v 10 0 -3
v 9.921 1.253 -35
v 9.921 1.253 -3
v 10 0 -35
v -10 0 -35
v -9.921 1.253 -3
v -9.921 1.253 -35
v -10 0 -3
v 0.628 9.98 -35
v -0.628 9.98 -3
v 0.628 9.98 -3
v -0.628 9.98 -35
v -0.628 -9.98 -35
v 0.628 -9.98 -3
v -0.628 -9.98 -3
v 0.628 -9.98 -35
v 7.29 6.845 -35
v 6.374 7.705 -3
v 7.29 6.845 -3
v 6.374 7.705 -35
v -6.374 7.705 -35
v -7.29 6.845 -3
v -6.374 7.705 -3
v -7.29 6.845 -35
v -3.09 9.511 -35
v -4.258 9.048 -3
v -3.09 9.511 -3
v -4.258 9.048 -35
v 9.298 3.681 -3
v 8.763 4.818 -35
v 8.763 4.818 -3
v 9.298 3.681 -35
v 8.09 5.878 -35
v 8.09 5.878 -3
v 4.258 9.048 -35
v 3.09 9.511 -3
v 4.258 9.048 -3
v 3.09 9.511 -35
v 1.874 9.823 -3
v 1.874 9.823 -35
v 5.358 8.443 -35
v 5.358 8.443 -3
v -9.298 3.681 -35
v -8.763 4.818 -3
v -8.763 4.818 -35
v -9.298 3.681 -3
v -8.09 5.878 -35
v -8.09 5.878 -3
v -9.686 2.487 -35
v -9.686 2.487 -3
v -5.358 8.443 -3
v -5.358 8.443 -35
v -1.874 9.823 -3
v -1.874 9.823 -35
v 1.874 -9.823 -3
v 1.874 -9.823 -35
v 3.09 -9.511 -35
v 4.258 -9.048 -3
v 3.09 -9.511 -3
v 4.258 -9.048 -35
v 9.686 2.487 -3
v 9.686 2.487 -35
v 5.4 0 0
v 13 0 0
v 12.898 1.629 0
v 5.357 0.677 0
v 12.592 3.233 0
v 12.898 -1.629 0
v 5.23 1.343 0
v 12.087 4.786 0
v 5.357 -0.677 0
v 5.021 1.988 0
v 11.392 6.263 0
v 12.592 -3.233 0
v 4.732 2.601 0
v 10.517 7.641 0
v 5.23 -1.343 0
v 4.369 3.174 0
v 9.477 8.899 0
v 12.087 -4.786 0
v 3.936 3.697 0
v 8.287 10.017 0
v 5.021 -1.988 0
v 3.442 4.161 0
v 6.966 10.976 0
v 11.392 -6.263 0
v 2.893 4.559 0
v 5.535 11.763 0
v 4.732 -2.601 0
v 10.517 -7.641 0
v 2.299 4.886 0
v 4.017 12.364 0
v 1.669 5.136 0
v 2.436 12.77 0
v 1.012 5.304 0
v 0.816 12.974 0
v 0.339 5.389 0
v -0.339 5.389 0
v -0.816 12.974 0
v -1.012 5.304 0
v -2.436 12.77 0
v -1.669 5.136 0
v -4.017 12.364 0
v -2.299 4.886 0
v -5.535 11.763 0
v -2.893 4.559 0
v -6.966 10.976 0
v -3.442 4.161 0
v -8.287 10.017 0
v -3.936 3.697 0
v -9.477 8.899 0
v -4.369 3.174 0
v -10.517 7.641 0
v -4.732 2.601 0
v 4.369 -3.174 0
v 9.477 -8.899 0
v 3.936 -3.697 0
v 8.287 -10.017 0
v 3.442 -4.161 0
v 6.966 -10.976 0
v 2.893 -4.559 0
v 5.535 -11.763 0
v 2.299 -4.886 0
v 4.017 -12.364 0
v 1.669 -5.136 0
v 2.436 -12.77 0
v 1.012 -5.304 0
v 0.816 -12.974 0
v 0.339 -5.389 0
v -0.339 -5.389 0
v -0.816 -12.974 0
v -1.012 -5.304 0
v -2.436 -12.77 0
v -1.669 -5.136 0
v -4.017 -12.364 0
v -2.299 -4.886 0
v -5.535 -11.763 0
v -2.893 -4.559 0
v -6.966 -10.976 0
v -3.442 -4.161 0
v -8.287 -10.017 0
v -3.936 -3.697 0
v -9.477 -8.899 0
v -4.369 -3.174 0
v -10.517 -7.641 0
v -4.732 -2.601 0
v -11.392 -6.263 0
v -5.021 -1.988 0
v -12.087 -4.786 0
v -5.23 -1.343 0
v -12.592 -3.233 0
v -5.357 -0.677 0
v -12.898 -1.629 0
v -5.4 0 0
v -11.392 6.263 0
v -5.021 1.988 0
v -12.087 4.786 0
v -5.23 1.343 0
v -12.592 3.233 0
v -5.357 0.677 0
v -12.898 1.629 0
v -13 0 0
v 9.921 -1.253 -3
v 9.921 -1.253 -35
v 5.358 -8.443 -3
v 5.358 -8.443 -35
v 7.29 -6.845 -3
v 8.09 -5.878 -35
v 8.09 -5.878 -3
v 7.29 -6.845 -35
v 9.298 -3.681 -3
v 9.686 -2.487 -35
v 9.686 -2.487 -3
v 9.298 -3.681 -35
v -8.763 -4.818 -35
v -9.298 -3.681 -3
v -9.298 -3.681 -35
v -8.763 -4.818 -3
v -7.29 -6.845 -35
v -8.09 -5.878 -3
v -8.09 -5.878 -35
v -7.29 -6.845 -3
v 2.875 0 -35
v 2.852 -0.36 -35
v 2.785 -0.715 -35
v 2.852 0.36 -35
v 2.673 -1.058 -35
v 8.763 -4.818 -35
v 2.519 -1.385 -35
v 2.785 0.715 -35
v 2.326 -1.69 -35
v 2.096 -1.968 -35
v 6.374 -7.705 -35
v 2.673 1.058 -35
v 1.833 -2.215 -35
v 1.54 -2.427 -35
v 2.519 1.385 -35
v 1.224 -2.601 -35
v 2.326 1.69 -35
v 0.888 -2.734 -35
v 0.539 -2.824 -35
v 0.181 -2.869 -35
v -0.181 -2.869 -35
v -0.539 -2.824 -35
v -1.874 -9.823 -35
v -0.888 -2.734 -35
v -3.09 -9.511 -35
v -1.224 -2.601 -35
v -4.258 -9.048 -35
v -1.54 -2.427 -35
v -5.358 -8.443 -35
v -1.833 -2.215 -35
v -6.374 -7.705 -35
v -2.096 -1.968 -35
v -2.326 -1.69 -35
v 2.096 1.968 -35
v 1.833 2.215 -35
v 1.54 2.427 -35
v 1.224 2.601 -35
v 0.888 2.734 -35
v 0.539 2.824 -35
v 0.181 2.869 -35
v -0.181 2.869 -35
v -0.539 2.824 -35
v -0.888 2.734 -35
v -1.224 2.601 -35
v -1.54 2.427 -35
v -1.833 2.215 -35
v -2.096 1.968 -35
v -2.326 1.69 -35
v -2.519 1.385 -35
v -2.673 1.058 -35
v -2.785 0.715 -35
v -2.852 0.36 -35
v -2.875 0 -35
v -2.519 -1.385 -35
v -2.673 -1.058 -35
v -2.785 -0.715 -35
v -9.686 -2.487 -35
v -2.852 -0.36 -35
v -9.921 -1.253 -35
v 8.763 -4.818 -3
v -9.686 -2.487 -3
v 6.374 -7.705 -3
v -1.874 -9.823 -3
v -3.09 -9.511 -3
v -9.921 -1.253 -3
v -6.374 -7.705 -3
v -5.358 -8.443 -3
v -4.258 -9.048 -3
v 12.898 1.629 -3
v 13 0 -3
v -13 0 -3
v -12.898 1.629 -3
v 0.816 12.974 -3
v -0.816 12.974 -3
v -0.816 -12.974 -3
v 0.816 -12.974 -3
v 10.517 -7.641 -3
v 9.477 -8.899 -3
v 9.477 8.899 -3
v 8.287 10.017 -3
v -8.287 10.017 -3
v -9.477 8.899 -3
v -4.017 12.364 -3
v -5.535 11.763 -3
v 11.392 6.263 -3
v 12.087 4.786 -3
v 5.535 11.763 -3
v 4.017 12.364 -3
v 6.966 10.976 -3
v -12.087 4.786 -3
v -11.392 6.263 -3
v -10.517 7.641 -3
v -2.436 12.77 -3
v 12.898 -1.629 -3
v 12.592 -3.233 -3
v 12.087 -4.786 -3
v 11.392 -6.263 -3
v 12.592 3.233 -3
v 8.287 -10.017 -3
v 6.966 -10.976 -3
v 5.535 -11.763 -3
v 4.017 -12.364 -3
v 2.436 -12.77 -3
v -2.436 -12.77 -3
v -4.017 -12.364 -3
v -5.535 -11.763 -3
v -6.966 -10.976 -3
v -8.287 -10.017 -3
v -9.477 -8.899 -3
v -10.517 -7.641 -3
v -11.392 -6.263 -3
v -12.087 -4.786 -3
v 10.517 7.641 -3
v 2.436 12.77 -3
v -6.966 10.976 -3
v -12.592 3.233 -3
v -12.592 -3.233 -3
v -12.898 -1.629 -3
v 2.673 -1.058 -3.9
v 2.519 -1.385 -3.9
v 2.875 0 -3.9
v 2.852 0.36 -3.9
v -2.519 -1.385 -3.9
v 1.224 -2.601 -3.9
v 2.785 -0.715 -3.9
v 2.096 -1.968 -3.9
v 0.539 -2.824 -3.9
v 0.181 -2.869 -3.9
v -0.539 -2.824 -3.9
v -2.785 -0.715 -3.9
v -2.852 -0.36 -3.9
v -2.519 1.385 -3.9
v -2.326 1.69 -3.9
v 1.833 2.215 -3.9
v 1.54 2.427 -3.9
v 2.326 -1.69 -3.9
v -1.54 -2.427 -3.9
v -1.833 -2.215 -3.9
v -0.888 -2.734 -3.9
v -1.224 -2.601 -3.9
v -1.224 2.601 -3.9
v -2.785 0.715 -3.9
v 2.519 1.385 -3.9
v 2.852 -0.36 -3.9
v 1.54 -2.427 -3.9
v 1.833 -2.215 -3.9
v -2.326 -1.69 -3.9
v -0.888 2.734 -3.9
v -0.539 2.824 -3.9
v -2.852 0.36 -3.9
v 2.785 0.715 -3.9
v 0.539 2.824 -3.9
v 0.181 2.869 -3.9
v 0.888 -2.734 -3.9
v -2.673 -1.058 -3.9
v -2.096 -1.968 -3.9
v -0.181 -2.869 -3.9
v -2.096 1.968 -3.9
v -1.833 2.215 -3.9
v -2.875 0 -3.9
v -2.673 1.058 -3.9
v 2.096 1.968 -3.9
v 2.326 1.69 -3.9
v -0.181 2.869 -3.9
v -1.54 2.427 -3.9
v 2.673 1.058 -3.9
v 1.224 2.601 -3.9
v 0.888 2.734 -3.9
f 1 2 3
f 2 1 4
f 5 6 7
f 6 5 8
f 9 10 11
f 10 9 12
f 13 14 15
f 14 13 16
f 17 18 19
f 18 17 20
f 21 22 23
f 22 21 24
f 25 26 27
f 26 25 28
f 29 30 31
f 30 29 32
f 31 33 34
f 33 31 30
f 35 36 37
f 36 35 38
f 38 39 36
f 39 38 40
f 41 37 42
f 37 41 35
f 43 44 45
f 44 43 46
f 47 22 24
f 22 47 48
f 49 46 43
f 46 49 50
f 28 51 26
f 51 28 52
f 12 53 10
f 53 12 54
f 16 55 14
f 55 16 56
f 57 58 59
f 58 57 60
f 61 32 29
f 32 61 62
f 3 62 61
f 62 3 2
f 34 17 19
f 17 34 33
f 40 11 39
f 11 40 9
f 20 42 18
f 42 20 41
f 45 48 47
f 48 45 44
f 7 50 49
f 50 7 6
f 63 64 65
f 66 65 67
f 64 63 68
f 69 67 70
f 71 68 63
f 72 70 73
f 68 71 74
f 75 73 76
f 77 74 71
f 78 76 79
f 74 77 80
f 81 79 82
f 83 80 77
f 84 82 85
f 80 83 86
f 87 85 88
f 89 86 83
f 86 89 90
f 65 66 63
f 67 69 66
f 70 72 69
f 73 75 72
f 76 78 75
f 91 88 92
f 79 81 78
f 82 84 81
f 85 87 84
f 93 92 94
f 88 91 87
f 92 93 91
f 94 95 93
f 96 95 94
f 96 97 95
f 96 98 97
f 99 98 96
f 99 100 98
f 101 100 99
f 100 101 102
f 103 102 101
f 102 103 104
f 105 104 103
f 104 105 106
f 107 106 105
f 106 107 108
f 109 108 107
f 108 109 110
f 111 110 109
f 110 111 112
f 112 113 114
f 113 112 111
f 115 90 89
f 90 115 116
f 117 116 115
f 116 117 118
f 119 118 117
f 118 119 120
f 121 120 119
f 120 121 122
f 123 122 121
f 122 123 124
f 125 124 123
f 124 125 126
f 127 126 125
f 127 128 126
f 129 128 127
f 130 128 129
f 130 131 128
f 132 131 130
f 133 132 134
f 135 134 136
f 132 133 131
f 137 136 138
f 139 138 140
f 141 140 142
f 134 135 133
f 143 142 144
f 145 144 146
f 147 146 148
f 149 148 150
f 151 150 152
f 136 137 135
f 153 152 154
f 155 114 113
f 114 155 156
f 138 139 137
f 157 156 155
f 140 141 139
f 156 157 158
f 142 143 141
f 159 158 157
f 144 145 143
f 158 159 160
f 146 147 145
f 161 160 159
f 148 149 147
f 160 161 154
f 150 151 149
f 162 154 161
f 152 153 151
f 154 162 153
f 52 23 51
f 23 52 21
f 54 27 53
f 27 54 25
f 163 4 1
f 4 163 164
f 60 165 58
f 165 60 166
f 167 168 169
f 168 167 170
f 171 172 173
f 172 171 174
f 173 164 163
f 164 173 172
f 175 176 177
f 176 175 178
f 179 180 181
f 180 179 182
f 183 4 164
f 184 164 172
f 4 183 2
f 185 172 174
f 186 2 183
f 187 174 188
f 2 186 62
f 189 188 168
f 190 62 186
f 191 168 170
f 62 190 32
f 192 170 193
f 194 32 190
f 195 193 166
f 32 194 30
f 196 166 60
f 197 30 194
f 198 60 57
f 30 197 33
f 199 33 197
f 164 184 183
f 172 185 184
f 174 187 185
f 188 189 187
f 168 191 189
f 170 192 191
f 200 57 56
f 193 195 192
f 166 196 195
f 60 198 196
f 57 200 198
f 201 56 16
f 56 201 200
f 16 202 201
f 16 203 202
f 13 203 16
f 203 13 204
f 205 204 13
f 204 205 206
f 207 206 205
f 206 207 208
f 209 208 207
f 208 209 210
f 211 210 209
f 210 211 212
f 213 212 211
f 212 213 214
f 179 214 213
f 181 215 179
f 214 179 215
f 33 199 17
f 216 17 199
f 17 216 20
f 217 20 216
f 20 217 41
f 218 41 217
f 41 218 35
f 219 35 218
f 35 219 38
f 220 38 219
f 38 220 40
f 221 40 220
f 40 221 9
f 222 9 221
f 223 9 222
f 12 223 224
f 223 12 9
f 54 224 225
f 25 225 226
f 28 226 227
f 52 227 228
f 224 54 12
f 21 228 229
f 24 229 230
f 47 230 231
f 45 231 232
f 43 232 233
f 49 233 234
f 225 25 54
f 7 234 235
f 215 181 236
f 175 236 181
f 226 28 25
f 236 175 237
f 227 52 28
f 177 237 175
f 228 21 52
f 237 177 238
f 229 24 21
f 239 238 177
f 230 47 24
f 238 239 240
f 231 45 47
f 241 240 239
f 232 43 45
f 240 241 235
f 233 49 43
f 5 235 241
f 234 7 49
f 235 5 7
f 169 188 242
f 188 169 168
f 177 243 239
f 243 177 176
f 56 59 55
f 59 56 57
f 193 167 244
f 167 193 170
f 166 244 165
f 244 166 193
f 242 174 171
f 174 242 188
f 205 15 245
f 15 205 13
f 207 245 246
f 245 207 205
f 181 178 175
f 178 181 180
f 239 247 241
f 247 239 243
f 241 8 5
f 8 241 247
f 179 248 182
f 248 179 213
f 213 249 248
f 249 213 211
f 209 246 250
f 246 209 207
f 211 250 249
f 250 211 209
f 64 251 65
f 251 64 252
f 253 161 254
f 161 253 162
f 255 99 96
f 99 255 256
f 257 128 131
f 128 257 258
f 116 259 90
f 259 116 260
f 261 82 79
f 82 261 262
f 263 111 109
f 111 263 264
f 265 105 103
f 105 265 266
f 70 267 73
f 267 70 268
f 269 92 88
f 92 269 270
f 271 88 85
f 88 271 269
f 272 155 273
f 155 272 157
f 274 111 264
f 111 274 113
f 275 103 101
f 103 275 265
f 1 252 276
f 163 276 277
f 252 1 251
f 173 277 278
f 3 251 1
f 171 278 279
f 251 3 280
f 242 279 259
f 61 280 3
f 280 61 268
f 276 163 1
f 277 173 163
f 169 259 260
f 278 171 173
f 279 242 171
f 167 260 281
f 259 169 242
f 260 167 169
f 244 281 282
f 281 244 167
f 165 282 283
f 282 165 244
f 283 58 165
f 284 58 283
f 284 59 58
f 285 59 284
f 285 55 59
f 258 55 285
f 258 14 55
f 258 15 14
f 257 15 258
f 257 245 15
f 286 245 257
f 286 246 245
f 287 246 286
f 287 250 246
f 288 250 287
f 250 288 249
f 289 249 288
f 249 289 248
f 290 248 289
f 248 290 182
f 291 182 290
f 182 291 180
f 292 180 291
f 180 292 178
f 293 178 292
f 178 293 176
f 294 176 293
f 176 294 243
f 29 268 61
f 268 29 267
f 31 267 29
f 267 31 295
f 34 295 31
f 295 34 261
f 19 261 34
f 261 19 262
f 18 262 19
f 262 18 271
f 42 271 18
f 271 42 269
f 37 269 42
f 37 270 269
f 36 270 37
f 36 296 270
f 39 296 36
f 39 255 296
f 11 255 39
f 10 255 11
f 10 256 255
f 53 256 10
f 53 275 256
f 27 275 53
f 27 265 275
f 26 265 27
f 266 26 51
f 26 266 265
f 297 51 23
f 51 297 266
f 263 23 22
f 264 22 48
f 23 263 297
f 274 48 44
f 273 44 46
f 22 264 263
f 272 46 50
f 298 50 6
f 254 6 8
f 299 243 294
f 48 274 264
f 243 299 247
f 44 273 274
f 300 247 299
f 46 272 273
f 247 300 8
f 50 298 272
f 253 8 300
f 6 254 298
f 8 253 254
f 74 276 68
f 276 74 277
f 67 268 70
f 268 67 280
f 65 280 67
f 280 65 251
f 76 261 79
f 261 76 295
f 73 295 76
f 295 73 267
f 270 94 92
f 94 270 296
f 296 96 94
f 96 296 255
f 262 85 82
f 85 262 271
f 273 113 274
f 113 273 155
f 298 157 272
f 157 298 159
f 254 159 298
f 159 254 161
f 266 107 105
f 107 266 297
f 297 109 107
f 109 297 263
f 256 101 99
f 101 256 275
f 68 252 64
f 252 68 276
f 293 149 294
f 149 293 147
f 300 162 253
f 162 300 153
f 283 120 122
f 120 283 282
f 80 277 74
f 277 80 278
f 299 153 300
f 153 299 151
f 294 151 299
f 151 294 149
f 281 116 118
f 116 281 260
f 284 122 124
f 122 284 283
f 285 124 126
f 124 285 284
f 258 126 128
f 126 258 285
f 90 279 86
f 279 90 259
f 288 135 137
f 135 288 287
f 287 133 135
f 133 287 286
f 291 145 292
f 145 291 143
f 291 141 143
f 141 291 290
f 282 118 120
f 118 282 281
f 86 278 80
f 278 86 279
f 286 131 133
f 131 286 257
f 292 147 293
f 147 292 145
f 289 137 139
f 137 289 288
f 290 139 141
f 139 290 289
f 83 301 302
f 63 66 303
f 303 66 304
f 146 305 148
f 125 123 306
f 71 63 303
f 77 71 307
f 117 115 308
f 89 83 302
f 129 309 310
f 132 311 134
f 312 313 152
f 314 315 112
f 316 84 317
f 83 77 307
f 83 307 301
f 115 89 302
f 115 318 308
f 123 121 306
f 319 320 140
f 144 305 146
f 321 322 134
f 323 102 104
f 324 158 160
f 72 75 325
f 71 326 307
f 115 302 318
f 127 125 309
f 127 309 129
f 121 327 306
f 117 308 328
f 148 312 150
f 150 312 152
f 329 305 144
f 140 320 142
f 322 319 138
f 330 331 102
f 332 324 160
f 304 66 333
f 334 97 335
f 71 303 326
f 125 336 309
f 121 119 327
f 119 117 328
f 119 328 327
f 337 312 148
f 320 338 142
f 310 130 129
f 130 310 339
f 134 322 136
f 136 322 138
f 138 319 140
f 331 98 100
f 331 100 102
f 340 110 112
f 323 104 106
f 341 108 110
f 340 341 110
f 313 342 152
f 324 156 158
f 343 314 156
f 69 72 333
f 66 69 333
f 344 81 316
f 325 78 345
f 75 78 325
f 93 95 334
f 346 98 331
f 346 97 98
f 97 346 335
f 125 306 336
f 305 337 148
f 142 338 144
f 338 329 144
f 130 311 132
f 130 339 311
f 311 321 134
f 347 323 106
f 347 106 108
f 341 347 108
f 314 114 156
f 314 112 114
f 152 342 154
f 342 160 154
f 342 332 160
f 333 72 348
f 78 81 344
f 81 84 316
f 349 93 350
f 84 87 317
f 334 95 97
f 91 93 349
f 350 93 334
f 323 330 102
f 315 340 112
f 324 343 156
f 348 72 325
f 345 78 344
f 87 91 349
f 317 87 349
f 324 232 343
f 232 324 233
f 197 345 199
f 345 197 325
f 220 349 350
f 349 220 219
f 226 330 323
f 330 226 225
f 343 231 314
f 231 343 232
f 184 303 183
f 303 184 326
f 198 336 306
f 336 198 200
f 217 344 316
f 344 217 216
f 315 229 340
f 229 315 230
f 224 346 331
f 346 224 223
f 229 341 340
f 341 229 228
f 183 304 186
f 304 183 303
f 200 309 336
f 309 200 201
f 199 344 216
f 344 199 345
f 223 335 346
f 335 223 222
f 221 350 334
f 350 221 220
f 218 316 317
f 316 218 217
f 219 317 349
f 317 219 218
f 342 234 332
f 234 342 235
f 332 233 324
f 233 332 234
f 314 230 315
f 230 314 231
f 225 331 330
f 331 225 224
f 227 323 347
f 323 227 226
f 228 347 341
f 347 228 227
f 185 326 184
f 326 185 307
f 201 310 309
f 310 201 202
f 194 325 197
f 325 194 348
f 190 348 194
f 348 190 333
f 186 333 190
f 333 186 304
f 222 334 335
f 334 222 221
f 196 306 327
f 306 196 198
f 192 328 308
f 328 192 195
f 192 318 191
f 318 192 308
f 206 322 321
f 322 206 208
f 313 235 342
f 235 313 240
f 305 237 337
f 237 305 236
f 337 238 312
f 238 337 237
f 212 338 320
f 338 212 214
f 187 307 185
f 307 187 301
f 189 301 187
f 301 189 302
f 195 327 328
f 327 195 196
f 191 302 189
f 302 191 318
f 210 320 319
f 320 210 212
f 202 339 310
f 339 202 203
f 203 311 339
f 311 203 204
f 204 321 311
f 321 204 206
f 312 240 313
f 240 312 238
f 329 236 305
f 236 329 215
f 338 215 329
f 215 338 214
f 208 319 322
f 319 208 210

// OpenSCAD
$fn = 50;


difference() {
	union() {
		translate(v = [0, 0, -35.0000000000]) {
			cylinder(h = 35, r = 10.0000000000);
		}
		translate(v = [0, 0, -3.0000000000]) {
			cylinder(h = 3, r = 13.0000000000);
		}
	}
	union() {
		translate(v = [0, 0, 0]) {
			rotate(a = [0, 0, 0]) {
				difference() {
					union() {
						#translate(v = [0, 0, -35.0000000000]) {
							cylinder(h = 35, r = 2.6000000000);
						}
						#translate(v = [0, 0, -3.9000000000]) {
							cylinder(h = 3.9000000000, r = 10.0000000000, r1 = 2.8750000000, r2 = 5.4000000000);
						}
						#translate(v = [0, 0, -35.0000000000]) {
							cylinder(h = 35, r = 2.8750000000);
						}
						#translate(v = [0, 0, -35.0000000000]) {
							cylinder(h = 35, r = 2.6000000000);
						}
					}
					union();
				}
			}
		}
	}
}
